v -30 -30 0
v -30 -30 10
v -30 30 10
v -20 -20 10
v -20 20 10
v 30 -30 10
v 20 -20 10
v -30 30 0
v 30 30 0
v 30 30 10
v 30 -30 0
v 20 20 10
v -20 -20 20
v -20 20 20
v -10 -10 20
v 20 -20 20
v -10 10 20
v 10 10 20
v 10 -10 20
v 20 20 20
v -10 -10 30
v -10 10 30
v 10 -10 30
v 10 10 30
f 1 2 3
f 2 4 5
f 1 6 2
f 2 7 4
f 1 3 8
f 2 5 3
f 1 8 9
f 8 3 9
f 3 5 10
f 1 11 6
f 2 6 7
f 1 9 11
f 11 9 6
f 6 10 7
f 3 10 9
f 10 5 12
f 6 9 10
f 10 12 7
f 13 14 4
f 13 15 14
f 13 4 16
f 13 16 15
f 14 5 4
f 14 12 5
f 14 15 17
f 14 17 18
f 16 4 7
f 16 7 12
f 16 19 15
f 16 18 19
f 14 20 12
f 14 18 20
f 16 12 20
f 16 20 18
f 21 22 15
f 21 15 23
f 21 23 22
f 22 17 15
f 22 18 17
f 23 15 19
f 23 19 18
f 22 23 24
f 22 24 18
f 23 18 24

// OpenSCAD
// 3段の階段状ピラミッド
// 各段は中心を揃えて積み上げる

step_sizes = [60, 40, 20];  // 各段の一辺の長さ (mm)
step_height = 10;           // 各段の高さ (mm)

module stepped_pyramid(sizes, h) {
    for (i = [0 : len(sizes) - 1]) {
        translate([0, 0, i * h])
            cube([sizes[i], sizes[i], h], center = false);
    }
}

// 中心を揃えるため、各段を個別にセンタリングして配置
module stepped_pyramid_centered(sizes, h) {
    for (i = [0 : len(sizes) - 1]) {
        translate([0, 0, i * h])
            linear_extrude(height = h)
                square([sizes[i], sizes[i]], center = true);
    }
}

stepped_pyramid_centered(step_sizes, step_height);
